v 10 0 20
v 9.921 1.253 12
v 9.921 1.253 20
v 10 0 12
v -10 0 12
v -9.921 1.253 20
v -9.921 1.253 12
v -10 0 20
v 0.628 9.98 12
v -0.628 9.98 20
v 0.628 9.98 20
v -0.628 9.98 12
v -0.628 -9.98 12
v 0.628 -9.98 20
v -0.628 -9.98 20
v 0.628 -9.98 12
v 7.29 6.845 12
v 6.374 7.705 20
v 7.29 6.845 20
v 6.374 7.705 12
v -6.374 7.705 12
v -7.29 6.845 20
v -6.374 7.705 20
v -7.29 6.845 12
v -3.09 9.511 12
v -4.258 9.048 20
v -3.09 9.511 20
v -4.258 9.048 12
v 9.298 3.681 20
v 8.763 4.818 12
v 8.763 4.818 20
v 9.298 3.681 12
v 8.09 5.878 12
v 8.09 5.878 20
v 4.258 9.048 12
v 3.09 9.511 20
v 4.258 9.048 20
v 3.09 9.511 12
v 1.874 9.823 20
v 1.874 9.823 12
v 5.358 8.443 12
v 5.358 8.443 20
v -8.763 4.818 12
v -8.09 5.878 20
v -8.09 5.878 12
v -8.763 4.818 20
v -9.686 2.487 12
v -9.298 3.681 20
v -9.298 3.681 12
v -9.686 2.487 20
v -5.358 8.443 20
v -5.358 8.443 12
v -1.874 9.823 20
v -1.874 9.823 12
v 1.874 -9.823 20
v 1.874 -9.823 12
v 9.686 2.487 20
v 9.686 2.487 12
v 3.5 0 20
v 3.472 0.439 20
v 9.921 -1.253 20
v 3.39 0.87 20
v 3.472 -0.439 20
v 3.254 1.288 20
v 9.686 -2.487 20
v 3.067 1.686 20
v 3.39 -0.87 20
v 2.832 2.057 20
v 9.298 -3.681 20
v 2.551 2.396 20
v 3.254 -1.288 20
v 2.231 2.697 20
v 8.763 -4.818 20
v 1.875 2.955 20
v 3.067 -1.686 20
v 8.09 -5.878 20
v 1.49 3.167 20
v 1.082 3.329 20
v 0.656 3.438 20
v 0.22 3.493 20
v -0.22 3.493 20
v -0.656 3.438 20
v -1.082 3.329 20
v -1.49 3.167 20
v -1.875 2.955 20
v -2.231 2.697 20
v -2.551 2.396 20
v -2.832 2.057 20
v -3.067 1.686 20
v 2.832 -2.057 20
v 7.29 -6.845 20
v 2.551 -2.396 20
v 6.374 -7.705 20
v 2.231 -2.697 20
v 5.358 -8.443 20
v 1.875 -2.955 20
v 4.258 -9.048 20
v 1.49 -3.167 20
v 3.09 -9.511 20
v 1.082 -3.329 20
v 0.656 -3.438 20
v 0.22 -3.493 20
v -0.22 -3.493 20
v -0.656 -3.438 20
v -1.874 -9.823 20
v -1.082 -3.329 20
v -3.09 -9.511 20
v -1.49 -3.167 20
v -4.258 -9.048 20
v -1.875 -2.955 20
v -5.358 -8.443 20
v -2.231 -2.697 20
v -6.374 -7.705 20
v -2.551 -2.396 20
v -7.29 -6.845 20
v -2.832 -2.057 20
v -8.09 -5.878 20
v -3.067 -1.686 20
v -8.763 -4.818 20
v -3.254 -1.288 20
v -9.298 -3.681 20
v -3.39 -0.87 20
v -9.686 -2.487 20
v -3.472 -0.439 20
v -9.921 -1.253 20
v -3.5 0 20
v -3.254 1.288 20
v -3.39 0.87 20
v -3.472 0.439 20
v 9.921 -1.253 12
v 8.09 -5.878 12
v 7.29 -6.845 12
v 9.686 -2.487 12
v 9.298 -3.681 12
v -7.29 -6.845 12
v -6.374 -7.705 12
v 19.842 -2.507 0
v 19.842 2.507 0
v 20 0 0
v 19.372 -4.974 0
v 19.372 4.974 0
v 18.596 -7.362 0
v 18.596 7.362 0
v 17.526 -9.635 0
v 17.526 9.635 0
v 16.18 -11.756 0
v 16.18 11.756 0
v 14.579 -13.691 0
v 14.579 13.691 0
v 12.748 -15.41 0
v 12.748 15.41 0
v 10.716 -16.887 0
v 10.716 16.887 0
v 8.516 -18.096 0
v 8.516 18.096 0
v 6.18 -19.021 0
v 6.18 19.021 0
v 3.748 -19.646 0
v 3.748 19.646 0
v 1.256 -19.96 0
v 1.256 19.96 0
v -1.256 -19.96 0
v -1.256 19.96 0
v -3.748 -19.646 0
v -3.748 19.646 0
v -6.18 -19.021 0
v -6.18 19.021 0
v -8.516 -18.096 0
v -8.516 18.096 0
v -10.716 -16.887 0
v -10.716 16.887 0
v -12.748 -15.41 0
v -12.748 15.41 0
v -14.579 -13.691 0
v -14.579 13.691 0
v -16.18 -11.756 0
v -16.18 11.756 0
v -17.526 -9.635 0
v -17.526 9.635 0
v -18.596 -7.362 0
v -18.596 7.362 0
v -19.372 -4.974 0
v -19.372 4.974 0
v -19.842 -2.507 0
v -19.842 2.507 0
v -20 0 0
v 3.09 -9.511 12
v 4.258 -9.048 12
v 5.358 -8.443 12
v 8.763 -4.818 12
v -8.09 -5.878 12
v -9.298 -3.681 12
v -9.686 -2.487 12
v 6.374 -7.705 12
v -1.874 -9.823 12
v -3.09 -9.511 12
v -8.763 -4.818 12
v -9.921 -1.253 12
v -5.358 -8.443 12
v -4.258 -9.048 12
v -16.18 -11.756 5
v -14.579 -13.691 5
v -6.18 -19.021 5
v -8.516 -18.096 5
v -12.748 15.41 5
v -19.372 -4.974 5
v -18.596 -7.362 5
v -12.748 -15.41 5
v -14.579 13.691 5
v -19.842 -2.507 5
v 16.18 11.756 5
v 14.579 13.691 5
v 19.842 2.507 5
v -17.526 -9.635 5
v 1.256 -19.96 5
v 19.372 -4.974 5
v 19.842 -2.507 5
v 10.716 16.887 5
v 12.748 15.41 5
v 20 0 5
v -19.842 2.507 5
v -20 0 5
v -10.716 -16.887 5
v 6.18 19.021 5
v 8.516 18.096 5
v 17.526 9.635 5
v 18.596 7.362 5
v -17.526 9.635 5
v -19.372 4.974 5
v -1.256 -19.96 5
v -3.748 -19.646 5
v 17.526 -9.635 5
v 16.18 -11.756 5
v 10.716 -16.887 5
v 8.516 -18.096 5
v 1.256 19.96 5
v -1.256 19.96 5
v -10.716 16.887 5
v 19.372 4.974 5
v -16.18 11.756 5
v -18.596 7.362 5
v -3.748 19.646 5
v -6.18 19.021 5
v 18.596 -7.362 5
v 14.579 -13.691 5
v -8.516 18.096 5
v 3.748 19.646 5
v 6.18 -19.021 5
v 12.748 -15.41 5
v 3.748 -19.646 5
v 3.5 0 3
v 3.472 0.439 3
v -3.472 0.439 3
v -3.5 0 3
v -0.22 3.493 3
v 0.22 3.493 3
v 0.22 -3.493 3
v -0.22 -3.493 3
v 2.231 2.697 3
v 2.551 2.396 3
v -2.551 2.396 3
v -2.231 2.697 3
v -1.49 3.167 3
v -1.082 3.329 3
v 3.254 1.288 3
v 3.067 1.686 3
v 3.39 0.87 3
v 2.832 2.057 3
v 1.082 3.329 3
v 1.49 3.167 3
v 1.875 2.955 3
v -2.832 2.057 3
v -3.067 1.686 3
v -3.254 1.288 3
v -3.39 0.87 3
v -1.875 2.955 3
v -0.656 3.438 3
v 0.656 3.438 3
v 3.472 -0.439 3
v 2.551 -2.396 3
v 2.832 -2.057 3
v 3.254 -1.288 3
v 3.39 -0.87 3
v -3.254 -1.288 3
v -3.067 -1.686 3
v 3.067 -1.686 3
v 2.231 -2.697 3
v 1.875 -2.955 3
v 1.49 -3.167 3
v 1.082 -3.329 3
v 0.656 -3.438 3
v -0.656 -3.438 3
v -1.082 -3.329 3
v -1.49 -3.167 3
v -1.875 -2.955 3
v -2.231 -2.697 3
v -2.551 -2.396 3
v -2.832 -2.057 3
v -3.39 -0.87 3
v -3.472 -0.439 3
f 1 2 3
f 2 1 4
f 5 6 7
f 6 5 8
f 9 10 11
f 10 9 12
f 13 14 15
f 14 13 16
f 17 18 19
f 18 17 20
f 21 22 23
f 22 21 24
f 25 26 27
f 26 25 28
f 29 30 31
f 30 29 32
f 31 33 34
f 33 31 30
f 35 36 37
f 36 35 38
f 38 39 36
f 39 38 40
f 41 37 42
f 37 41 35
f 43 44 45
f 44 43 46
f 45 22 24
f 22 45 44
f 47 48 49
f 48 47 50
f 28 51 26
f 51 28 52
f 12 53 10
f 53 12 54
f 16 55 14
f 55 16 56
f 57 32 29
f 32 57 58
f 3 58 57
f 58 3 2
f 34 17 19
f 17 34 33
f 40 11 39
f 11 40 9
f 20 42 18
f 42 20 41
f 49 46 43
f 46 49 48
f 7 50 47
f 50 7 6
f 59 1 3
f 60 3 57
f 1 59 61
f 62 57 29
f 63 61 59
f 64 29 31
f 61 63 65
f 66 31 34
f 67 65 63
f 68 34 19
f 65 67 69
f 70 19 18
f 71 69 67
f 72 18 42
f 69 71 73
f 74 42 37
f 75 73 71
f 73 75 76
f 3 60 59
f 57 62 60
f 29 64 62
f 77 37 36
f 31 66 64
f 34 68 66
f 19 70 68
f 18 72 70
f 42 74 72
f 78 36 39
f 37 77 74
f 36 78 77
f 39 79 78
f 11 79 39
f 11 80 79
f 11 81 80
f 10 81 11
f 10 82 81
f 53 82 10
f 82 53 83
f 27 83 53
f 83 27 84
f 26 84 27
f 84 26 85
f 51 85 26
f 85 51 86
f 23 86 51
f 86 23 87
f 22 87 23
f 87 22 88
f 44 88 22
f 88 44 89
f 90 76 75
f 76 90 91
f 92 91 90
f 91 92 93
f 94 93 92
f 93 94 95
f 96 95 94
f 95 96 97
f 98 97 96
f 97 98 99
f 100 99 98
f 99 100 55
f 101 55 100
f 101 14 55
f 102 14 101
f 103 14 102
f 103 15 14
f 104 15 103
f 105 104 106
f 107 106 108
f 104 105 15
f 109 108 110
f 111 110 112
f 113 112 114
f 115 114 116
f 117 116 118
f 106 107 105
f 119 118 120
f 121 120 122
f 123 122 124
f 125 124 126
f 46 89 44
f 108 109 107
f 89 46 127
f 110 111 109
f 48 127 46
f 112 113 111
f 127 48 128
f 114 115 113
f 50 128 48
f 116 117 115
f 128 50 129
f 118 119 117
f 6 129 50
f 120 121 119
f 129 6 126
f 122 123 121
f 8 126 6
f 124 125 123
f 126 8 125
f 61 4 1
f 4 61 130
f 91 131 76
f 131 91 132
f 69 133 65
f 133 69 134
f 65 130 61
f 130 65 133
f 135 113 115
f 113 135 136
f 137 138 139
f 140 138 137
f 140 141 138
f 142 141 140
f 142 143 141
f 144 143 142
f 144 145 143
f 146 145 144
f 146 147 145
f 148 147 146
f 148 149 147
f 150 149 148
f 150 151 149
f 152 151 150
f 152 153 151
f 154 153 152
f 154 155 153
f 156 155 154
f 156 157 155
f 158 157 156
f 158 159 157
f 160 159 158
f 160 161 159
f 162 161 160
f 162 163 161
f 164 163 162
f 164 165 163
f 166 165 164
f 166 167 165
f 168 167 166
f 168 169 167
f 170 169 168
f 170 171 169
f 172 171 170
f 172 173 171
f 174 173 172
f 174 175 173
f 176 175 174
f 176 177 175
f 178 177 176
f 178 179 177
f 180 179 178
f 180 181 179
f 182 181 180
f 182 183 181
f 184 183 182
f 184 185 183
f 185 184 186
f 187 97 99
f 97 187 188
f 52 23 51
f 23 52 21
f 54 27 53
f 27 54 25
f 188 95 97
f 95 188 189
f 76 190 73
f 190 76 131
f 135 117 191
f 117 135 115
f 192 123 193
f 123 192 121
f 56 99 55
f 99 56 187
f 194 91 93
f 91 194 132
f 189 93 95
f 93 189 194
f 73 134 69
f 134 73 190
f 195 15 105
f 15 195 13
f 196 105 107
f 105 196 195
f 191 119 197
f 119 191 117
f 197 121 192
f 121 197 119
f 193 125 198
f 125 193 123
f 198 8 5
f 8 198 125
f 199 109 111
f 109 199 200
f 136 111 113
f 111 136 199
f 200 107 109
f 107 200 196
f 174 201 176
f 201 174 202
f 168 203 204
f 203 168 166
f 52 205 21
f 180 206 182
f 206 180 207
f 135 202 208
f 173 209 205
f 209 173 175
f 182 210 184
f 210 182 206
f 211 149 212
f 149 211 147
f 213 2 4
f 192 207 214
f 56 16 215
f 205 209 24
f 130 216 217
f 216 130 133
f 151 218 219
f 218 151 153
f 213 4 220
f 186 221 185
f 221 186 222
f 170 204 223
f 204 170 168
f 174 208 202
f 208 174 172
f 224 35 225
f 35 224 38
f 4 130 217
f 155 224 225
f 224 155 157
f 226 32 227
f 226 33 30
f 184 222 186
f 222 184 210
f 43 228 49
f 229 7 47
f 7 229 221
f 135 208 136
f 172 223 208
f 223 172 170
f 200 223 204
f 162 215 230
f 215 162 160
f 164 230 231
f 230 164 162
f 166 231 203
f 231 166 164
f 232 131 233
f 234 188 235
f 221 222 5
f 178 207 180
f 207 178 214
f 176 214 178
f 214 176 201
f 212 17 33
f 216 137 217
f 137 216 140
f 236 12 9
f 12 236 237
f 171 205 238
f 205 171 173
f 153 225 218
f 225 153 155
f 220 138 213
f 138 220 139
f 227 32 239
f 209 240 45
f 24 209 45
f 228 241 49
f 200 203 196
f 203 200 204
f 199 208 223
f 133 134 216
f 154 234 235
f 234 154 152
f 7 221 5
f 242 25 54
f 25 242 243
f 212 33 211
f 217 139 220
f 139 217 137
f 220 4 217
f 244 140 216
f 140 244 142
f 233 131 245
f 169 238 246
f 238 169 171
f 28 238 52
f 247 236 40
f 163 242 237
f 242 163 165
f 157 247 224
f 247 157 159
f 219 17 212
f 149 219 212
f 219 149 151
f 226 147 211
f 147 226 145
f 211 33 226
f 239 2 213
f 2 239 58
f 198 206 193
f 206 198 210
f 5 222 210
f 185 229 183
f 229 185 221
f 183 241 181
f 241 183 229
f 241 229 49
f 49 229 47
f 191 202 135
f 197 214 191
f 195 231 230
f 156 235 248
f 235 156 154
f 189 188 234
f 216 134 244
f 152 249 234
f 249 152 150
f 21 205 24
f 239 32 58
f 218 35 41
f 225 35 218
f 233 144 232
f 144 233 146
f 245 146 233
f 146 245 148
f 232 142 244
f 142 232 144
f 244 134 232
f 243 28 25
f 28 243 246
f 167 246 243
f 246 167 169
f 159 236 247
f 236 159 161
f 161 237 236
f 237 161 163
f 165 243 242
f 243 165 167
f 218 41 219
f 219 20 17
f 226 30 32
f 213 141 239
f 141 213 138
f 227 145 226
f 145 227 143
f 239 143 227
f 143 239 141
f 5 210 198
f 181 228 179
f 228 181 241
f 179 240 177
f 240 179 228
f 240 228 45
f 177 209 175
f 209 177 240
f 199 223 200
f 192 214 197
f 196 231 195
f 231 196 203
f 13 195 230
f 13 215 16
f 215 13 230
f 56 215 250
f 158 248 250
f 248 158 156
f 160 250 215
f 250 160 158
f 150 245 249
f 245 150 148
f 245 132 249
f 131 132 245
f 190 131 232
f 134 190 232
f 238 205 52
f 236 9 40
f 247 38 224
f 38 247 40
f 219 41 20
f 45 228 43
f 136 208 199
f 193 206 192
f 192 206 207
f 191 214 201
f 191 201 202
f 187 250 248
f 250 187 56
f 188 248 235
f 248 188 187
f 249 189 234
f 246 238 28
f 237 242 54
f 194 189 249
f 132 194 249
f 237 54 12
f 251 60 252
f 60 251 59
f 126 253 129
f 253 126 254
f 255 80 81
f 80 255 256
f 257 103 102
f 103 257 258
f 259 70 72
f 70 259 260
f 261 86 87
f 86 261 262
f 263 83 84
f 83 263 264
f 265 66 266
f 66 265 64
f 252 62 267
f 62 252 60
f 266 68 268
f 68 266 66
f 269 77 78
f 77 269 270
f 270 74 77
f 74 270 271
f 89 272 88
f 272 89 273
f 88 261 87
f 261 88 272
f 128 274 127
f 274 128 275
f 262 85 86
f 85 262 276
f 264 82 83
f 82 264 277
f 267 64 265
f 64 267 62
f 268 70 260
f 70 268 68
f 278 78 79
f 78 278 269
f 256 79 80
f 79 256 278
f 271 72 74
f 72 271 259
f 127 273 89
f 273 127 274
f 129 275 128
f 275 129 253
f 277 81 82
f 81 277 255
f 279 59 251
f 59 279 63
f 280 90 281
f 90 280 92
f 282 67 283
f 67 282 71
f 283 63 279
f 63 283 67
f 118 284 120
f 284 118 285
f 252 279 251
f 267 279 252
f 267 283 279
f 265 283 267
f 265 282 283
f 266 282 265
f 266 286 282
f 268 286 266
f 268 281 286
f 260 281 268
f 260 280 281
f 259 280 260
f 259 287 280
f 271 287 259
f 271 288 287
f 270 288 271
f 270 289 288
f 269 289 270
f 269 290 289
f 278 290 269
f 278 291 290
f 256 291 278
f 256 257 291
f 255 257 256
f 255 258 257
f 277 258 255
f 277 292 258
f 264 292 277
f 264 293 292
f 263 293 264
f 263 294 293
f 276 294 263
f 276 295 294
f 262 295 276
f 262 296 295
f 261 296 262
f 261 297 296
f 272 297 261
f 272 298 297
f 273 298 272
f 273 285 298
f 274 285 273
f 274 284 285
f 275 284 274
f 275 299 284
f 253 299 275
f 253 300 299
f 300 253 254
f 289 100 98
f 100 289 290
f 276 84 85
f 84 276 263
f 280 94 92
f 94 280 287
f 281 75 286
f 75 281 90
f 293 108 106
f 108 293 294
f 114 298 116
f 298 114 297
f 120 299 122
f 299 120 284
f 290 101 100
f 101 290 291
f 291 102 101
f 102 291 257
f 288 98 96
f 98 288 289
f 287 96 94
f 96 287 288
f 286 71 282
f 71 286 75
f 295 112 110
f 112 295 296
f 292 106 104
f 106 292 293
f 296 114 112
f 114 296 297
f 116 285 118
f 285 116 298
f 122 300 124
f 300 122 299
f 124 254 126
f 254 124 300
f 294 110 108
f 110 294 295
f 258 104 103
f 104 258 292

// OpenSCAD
$fn = 50;

difference() {
   union() {
      cylinder(r=10,h=20);
      hull() {
         cylinder(r=10,h=12);
         form();
      }
   }
   translate([0,0,3]) cylinder(d=7,h=30);
}

module form() {
   linear_extrude(height=5) circle(r=20);
}
